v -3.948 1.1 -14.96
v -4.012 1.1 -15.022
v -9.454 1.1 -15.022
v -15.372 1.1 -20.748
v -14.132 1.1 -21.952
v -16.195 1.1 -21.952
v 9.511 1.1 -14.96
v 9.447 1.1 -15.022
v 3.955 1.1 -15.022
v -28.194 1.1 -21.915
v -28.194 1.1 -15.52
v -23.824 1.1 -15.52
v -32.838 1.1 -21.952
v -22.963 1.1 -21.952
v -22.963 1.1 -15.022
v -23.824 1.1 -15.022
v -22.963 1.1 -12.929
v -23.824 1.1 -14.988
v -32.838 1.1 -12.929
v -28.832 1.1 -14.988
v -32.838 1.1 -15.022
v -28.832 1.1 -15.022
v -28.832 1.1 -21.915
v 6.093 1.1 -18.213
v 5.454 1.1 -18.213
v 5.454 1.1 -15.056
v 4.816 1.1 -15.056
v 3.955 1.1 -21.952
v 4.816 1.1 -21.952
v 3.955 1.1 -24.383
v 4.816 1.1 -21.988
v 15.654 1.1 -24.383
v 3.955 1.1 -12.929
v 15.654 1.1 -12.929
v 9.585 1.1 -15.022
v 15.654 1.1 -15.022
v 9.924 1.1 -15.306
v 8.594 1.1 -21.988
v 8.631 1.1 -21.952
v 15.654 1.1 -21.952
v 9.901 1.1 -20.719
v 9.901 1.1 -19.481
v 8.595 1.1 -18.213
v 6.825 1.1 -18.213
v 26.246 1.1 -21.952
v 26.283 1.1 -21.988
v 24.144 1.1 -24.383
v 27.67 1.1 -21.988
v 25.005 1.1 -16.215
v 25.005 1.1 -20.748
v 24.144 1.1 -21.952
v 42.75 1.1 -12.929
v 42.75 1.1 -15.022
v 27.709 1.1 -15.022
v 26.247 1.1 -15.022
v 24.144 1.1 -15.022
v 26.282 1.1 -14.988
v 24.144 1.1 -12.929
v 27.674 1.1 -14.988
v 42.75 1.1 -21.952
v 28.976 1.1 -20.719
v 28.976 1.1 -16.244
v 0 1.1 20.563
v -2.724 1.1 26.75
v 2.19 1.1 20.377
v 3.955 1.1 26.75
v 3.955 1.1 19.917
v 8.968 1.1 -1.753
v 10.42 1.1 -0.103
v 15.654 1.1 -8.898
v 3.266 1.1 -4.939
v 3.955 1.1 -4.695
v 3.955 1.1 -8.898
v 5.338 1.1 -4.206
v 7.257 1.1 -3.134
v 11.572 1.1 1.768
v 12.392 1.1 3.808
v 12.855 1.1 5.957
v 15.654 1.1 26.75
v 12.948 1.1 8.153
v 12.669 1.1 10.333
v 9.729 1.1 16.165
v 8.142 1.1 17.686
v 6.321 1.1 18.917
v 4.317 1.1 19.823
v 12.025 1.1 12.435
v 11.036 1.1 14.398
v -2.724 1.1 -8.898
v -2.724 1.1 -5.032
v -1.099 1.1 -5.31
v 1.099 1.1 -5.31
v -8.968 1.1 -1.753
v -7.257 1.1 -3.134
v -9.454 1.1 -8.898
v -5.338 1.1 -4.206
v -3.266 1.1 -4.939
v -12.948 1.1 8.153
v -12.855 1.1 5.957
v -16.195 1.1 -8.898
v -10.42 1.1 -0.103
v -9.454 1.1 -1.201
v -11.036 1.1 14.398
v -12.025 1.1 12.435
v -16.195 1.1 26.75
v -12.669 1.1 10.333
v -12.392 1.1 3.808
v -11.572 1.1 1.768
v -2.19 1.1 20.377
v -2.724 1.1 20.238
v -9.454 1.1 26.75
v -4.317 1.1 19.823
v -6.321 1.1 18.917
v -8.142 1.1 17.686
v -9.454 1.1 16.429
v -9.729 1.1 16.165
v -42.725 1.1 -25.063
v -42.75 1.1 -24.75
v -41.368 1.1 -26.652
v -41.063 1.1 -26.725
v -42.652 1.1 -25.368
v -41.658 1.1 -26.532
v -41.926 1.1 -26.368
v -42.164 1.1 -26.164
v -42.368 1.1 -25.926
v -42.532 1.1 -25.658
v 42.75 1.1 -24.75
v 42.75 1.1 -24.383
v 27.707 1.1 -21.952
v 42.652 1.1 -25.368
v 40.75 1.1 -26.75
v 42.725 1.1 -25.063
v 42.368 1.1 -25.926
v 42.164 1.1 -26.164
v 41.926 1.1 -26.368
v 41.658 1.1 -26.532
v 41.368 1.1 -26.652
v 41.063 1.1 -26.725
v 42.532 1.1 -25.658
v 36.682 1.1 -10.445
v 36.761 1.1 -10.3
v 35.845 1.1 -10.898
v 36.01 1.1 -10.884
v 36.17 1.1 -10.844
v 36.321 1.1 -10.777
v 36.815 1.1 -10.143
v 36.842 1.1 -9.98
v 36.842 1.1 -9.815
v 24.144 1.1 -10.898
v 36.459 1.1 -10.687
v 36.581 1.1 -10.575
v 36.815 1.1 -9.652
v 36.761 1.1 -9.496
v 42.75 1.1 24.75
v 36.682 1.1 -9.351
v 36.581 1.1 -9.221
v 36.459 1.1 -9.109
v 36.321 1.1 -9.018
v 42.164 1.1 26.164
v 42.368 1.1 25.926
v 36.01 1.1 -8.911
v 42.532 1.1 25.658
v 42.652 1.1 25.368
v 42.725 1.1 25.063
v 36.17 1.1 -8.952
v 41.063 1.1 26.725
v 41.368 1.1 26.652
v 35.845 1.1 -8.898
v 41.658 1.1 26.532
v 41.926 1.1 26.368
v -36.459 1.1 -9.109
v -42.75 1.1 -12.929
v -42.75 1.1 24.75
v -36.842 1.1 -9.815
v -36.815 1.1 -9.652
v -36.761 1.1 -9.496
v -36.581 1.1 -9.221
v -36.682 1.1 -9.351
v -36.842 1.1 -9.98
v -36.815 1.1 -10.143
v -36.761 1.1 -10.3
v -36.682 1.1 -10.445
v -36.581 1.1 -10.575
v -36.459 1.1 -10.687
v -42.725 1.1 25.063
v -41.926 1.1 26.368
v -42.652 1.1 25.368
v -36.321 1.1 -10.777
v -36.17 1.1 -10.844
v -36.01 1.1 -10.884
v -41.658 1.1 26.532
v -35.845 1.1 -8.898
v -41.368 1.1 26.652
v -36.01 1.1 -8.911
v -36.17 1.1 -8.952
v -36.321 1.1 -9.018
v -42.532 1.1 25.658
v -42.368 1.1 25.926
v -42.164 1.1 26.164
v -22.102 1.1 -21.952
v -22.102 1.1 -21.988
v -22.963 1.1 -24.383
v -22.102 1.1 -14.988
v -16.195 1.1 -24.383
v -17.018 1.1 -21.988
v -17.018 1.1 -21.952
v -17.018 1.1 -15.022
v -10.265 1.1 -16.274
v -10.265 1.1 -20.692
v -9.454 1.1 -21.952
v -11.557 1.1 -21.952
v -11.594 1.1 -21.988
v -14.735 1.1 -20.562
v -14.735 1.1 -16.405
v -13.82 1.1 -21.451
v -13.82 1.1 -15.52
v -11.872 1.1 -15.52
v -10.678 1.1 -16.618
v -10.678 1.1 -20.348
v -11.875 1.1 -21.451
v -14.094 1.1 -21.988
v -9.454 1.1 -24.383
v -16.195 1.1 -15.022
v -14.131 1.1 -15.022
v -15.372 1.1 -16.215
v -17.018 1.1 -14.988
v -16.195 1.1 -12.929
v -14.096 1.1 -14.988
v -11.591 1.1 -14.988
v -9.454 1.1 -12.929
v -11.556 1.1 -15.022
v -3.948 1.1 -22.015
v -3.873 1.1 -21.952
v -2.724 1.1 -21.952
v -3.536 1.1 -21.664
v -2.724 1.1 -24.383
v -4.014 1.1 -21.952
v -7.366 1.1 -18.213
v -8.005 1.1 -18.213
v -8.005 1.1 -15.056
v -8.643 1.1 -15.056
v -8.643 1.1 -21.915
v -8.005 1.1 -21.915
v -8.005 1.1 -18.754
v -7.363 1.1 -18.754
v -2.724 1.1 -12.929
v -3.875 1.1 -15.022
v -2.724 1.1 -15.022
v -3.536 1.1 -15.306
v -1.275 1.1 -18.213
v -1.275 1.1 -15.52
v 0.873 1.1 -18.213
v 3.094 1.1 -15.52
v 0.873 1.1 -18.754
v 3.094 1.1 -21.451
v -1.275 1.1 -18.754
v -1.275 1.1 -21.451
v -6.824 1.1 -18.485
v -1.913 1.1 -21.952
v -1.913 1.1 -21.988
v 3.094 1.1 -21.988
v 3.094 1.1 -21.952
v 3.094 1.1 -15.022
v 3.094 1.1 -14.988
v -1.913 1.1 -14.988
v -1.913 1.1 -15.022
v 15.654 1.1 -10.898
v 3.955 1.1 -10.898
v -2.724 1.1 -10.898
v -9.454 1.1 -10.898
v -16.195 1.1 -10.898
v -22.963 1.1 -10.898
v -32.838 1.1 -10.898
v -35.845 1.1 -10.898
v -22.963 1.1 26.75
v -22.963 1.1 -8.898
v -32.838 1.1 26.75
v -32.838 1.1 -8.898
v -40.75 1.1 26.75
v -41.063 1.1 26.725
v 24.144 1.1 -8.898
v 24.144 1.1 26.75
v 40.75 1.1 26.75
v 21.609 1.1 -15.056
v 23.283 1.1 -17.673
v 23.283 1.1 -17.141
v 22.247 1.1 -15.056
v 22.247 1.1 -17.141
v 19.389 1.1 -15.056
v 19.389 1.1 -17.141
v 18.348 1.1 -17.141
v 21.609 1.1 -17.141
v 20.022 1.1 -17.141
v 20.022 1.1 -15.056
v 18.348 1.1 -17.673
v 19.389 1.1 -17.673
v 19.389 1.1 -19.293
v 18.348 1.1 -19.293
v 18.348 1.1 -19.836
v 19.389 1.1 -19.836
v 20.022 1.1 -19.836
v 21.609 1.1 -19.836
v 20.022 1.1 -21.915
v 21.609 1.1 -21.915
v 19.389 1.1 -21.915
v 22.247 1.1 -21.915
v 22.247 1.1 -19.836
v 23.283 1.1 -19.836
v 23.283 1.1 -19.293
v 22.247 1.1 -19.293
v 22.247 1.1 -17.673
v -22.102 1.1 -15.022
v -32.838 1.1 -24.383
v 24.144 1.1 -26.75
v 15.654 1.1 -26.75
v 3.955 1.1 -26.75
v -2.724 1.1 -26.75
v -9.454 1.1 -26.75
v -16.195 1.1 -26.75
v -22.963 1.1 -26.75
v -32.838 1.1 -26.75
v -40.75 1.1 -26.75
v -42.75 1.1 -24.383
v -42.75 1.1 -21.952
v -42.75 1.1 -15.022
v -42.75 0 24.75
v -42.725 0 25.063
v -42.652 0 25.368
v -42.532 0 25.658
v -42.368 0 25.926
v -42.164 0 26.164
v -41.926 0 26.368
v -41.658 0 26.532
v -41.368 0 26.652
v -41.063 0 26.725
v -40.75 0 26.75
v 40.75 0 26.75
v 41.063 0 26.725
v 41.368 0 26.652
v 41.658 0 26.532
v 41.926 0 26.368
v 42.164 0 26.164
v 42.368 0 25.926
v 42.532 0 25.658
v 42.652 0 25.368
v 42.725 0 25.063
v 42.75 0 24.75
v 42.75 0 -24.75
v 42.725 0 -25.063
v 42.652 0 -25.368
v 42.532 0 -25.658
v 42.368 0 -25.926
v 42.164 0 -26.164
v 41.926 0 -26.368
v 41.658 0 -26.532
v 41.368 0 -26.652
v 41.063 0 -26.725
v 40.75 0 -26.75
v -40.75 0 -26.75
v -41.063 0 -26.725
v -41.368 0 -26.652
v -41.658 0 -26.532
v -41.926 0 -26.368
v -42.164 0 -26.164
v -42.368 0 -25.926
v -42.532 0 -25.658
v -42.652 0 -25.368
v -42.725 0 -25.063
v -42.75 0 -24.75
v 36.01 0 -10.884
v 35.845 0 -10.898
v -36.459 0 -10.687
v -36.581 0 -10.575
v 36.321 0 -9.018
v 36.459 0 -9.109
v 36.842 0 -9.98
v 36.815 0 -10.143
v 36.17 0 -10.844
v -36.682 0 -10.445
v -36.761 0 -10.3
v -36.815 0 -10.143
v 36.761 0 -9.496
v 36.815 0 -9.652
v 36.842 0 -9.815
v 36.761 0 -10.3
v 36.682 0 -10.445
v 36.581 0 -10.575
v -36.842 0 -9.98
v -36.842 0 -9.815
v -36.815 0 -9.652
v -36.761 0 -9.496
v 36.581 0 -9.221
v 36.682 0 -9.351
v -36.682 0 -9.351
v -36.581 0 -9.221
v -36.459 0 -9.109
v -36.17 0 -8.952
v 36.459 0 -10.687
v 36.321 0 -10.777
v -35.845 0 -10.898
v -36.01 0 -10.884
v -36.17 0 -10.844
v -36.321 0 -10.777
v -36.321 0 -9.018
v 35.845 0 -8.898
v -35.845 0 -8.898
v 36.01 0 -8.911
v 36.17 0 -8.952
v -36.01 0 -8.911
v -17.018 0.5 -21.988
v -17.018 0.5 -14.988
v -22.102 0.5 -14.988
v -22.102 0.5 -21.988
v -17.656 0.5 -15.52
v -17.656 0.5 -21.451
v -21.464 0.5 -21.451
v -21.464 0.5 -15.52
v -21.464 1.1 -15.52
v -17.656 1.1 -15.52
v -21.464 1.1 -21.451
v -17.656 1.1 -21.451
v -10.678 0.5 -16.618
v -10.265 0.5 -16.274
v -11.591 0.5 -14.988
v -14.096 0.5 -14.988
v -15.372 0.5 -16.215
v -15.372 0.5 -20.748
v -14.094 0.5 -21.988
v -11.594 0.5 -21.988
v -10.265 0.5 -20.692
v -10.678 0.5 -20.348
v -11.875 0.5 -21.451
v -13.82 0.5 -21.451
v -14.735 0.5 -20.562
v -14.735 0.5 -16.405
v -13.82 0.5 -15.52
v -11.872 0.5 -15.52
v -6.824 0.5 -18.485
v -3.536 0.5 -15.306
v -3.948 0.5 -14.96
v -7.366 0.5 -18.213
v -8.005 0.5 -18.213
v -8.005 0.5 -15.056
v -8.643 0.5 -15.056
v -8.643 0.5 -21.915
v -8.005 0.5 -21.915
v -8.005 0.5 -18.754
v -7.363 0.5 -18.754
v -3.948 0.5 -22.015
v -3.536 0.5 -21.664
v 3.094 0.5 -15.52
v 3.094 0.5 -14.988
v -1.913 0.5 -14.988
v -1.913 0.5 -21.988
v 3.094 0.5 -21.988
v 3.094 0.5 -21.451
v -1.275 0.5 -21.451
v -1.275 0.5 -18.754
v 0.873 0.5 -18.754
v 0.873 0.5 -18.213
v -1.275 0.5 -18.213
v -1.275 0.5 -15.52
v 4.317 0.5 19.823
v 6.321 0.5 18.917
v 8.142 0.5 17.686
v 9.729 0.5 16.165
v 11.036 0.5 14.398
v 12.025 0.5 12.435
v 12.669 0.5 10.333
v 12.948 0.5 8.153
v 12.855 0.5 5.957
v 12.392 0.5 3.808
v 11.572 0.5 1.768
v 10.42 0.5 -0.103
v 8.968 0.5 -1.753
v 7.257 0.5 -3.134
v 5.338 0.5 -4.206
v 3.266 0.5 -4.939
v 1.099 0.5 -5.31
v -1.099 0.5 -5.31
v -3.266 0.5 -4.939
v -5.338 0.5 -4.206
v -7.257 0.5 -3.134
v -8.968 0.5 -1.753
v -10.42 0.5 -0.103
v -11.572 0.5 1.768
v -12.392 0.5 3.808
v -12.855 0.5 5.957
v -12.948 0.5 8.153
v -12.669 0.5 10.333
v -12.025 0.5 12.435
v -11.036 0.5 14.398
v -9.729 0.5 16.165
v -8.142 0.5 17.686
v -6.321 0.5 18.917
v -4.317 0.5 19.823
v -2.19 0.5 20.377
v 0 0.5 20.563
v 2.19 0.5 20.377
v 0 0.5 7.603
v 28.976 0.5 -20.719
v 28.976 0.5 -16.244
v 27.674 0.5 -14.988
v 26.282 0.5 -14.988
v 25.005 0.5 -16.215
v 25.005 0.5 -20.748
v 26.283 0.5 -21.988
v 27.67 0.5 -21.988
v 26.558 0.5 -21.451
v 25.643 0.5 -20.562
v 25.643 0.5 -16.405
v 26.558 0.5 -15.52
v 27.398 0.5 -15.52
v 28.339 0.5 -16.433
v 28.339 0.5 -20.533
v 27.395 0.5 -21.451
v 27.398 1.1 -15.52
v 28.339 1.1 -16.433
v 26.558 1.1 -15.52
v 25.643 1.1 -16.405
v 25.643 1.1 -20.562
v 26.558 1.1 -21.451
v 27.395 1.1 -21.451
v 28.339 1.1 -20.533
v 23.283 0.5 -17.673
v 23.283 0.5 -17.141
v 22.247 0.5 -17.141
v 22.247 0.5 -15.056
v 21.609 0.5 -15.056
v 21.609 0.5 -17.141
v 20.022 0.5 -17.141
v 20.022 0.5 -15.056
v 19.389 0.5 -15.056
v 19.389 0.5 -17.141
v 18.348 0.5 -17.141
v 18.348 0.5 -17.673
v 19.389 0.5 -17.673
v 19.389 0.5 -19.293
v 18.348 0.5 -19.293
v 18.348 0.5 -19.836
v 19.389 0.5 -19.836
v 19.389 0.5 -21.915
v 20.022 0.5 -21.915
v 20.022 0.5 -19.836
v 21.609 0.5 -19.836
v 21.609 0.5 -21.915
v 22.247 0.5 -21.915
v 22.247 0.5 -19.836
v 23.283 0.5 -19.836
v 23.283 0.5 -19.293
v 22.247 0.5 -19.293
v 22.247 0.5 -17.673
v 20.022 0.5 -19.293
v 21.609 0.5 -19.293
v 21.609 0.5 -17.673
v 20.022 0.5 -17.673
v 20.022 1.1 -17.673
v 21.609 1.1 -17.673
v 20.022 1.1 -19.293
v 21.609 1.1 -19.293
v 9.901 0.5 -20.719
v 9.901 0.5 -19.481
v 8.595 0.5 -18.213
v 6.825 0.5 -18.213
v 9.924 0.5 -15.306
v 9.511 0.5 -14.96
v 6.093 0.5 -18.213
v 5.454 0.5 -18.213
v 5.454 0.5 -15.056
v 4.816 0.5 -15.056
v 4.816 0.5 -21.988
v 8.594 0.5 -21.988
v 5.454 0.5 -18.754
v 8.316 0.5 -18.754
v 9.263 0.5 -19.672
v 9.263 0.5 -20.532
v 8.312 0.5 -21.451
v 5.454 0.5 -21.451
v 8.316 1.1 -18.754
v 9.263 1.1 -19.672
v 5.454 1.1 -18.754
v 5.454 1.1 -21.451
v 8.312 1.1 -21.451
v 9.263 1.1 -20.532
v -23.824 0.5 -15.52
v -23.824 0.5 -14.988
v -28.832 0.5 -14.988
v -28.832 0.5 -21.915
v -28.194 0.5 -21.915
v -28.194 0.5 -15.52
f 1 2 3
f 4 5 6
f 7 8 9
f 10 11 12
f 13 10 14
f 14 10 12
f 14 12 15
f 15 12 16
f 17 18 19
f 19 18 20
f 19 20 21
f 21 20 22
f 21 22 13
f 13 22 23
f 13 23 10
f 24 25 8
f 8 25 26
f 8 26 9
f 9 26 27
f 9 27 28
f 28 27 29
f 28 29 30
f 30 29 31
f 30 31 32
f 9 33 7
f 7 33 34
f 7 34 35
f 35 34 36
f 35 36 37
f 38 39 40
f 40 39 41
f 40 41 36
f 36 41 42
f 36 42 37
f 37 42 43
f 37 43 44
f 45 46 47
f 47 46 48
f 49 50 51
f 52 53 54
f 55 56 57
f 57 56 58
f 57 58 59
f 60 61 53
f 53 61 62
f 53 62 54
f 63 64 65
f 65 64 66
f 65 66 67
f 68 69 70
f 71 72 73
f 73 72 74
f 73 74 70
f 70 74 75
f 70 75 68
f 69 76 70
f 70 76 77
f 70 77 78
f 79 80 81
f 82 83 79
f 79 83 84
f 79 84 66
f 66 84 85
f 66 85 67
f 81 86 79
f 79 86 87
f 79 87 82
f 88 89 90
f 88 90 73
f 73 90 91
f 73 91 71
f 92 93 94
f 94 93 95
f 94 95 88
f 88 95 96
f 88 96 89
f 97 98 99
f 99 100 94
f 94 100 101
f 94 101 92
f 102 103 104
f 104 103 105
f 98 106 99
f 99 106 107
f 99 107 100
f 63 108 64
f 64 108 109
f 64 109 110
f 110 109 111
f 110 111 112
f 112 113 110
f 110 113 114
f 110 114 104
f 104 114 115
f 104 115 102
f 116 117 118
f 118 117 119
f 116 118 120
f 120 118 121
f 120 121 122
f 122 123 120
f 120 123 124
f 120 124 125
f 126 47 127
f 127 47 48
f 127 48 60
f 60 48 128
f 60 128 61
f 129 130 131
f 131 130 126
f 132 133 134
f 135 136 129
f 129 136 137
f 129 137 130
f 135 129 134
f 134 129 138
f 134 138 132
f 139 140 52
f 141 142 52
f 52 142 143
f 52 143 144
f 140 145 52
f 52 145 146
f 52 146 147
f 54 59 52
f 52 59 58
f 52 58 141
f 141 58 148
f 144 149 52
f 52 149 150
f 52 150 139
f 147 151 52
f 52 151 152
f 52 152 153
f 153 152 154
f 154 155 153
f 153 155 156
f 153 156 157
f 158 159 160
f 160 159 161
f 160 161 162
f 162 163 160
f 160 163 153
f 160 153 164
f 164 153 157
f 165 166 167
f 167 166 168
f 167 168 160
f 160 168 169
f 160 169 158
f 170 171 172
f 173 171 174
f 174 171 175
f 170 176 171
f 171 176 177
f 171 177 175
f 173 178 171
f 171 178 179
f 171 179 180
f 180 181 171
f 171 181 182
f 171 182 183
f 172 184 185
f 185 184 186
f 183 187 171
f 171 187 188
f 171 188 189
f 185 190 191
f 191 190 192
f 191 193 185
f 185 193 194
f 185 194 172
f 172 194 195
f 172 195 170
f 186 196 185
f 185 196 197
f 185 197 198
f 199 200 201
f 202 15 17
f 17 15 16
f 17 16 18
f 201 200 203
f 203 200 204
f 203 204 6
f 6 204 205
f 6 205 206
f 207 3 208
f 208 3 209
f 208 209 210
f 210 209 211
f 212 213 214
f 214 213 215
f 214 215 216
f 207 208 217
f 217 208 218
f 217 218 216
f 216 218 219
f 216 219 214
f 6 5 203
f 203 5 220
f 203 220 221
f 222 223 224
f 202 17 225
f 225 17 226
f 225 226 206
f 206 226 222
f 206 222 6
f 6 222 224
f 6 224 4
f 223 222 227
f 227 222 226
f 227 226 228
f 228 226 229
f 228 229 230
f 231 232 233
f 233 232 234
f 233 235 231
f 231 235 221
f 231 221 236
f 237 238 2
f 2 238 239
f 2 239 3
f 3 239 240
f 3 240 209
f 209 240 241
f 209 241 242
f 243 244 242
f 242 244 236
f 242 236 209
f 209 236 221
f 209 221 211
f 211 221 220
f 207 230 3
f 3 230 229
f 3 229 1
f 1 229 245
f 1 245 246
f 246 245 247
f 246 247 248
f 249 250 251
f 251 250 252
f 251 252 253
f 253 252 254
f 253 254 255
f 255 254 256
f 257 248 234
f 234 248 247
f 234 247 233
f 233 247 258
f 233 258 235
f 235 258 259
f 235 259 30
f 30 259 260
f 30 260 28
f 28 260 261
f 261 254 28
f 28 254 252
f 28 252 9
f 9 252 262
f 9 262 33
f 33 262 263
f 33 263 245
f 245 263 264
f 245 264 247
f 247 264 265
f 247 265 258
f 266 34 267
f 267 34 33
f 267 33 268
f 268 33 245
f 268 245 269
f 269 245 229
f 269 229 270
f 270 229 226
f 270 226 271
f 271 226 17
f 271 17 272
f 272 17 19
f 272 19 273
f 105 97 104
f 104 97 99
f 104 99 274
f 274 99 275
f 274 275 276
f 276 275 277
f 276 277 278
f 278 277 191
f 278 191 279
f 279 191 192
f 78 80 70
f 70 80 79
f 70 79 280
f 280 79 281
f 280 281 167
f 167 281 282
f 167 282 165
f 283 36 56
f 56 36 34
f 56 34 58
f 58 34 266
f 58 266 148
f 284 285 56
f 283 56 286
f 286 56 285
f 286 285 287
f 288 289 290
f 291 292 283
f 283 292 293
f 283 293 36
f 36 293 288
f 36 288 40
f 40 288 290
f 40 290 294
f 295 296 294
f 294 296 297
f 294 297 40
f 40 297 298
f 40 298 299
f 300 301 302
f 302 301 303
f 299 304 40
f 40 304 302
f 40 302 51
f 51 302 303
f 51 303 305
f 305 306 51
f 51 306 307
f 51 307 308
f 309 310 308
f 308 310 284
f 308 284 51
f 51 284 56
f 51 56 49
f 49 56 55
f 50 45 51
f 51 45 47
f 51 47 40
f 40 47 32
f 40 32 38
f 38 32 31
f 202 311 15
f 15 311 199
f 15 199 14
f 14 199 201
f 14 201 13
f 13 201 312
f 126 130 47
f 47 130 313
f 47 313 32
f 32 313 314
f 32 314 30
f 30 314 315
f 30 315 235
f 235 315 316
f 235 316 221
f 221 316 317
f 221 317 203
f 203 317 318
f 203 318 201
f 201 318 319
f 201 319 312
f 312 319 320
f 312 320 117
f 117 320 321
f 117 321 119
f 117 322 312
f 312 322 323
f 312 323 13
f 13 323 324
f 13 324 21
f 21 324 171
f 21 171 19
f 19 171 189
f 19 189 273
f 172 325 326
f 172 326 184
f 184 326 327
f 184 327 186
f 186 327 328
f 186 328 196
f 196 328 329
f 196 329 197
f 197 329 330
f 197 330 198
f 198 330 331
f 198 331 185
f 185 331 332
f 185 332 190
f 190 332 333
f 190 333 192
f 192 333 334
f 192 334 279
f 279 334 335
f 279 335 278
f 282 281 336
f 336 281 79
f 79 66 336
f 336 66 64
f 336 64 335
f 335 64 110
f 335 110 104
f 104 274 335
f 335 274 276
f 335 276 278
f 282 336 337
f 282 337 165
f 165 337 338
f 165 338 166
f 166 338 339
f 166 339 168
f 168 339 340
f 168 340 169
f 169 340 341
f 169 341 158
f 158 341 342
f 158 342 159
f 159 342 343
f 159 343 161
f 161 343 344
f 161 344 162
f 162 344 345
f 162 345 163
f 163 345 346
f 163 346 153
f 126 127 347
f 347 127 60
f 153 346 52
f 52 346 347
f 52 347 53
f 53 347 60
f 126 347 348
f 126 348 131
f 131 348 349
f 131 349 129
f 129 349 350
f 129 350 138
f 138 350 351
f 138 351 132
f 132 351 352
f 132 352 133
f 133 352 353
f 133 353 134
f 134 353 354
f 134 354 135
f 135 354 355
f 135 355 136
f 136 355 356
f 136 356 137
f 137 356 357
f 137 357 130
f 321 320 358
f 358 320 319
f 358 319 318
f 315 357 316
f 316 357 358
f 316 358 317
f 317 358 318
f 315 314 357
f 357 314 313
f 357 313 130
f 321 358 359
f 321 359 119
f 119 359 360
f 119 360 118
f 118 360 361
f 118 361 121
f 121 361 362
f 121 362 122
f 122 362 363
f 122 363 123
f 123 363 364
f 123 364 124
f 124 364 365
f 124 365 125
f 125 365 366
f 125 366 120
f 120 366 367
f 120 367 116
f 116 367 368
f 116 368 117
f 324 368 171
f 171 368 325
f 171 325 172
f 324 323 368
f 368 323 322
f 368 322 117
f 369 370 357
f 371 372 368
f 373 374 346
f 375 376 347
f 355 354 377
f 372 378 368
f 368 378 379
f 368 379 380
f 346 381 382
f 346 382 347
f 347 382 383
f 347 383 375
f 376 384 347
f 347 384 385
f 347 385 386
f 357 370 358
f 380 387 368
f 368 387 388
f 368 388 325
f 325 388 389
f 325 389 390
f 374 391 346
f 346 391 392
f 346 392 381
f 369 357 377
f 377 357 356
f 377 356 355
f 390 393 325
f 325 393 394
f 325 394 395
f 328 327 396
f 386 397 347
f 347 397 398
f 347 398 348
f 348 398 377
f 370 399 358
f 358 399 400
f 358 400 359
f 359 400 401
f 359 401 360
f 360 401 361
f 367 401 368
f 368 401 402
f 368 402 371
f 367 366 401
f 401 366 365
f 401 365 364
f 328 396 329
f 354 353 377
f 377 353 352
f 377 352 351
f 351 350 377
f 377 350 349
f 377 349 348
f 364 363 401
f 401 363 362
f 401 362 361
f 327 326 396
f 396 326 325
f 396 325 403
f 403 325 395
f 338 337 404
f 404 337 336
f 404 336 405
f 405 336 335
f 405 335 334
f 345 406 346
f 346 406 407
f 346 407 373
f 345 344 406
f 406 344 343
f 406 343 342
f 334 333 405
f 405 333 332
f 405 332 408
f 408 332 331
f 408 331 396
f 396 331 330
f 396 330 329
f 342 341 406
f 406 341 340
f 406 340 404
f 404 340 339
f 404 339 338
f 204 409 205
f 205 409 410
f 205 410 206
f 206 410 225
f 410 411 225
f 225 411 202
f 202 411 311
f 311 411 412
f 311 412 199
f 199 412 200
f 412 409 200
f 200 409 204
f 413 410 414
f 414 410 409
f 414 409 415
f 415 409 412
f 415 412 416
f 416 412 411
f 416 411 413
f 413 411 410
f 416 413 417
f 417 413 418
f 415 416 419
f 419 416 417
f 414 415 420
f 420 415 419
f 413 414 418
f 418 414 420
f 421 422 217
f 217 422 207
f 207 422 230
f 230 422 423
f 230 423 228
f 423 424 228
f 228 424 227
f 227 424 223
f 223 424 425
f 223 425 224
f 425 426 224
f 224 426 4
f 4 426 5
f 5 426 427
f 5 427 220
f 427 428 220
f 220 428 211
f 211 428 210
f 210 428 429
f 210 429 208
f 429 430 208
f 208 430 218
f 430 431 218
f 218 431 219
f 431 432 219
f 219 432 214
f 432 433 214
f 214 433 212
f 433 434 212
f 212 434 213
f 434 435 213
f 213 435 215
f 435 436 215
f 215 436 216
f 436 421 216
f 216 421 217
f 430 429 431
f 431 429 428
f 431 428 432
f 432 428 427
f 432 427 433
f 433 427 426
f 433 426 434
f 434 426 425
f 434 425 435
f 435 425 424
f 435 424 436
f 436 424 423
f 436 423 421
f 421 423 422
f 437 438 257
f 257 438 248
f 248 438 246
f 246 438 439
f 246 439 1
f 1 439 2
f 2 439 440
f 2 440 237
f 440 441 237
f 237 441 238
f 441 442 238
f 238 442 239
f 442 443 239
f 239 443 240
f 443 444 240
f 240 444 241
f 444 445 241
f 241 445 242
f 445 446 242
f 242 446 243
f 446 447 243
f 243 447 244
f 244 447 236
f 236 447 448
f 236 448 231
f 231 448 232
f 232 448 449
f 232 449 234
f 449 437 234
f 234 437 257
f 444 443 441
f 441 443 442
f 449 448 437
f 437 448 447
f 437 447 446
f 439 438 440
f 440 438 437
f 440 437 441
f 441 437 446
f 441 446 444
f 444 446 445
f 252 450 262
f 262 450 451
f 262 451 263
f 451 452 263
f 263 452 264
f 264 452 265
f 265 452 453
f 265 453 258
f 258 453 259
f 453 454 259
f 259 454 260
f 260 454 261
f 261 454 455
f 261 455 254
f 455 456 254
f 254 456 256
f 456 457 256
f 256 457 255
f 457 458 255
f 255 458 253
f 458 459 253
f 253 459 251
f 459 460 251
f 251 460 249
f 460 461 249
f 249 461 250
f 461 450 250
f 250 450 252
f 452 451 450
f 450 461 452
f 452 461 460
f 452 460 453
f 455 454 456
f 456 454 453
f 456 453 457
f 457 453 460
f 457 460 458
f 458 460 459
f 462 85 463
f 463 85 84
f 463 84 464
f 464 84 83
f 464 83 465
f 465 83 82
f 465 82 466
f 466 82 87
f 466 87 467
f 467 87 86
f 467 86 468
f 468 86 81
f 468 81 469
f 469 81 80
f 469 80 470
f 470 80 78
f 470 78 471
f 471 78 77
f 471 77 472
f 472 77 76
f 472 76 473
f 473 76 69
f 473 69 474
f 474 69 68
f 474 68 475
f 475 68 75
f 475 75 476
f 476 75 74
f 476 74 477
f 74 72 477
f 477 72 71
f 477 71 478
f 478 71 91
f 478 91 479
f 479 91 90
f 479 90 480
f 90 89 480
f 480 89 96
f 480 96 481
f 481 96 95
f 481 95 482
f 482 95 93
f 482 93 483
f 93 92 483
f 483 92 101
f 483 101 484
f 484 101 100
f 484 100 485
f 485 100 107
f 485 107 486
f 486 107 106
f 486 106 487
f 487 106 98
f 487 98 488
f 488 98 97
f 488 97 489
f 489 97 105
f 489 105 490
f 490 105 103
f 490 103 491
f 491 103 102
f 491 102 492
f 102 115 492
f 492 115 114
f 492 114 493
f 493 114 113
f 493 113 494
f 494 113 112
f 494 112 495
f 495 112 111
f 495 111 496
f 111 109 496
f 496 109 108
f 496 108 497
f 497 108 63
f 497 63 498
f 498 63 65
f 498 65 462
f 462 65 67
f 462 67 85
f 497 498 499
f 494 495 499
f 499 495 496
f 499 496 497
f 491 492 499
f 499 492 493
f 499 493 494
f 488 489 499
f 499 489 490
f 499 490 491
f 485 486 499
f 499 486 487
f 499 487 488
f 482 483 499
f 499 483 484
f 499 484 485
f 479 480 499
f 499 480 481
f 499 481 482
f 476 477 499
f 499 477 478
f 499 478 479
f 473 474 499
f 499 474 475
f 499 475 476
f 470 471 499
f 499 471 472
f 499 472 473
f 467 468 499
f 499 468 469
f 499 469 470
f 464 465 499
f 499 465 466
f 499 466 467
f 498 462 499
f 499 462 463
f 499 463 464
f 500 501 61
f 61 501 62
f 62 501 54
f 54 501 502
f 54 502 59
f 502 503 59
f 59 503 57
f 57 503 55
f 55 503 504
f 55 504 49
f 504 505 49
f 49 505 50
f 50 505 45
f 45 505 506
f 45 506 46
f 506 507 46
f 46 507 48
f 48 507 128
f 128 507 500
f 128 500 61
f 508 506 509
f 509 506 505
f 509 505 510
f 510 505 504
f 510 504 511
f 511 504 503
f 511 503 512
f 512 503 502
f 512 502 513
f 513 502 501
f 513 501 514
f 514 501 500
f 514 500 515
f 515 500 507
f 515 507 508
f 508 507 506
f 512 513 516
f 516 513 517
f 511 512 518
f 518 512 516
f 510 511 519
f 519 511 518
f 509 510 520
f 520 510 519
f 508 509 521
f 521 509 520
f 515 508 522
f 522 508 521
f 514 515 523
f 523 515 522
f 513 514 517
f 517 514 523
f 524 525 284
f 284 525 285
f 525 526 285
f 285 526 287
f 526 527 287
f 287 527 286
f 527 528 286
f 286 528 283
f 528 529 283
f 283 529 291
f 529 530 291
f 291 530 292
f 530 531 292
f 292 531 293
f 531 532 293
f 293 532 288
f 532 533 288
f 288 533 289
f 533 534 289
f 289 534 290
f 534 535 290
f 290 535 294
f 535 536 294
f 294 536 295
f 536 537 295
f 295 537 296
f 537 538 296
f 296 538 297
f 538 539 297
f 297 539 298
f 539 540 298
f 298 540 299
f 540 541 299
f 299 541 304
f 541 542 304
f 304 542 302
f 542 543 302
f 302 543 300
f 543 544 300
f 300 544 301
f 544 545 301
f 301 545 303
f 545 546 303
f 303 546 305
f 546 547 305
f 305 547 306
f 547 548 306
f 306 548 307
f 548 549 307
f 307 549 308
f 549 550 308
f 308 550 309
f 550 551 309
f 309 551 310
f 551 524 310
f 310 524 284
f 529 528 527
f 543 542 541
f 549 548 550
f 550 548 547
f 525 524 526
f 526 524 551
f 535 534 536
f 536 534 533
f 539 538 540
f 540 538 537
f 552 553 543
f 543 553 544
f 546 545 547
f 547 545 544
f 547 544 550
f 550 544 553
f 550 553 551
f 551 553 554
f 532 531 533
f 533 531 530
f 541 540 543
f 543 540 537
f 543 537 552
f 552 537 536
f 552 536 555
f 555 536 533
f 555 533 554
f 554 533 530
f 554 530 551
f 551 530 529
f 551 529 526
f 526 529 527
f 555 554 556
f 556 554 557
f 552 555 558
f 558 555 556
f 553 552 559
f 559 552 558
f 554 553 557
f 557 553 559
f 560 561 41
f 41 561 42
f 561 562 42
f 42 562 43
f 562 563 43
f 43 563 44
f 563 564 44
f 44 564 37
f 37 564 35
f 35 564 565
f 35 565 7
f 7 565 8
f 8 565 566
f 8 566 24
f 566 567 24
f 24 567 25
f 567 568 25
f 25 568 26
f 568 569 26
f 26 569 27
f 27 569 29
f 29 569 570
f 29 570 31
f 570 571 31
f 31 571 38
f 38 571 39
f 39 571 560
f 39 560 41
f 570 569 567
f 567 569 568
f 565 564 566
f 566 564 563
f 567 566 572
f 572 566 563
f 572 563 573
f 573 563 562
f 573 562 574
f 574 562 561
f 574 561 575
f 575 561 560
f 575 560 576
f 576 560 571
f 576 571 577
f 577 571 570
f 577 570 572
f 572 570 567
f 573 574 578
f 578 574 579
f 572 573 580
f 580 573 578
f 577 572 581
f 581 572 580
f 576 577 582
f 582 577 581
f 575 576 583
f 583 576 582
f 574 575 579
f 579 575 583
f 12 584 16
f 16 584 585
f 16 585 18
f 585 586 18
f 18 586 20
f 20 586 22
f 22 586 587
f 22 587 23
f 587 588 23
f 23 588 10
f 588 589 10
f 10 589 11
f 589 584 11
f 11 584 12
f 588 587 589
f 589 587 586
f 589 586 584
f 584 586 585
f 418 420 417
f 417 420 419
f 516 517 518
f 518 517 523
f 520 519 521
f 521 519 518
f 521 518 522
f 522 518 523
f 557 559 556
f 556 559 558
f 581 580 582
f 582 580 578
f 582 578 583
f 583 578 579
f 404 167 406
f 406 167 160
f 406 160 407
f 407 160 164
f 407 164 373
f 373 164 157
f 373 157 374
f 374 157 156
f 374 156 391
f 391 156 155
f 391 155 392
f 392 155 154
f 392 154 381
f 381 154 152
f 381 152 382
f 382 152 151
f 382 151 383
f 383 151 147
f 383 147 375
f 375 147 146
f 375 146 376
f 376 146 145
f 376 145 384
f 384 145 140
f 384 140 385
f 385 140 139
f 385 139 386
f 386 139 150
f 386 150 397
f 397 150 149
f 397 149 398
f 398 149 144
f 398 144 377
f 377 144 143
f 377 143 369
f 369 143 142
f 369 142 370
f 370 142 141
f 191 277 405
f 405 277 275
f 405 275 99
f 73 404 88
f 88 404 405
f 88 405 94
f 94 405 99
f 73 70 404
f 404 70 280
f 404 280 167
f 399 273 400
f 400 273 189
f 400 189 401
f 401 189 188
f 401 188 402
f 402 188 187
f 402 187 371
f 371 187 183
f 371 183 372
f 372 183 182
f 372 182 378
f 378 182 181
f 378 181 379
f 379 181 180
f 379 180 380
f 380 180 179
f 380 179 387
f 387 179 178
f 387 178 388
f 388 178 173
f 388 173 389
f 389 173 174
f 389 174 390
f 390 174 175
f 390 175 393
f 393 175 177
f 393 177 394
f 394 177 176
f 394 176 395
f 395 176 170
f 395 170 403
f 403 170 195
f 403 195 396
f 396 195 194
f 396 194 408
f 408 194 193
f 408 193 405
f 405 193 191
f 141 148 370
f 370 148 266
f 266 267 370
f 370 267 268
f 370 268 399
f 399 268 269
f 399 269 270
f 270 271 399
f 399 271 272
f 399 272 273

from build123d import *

# Parameters (mm, degrees)
EXTRUDE_1_DEPTH     = 1.1
SKETCH_4_R          = 12.96
SKETCH_4_W          = 5.084081154
SKETCH_4_H          = 7
SKETCH_4_W_2        = 3.808622708
SKETCH_4_H_2        = 5.930745221
SKETCH_4_W_3        = 1.586812329
SKETCH_4_H_3        = 1.62095201
CUT_EXTRUDE_8_DEPTH = 0.6
CUT_EXTRUDE_9_DEPTH = 51.441401646


with BuildPart() as part:
    # Эскиз1 → Бобышка-Вытянуть1 (new body)
    with BuildSketch(Plane(origin=(0, 0, 0), x_dir=(1, 0, 0), z_dir=(0, 1, 0))):
        with BuildLine():
            Line((-40.75, 26.75), (40.75, 26.75))
            ThreePointArc((40.75, 26.75), (42.164213562, 26.164213562), (42.75, 24.75))
            Line((42.75, 24.75), (42.75, -24.75))
            ThreePointArc((42.75, -24.75), (42.164213562, -26.164213562), (40.75, -26.75))
            Line((40.75, -26.75), (-40.75, -26.75))
            ThreePointArc((-40.75, -26.75), (-42.164213562, -26.164213562), (-42.75, -24.75))
            Line((-42.75, -24.75), (-42.75, 24.75))
            ThreePointArc((-42.75, 24.75), (-42.164213562, 26.164213562), (-40.75, 26.75))
        make_face()
    extrude(amount=EXTRUDE_1_DEPTH)

    # Эскиз4 → Вырез-Вытянуть8 (cut)
    # profile 1 of 9: a face of its own
    with BuildSketch(Plane(origin=(0, 1.1, 0), x_dir=(1, 0, 0), z_dir=(0, 1, 0))):
        with Locations(Location((0, -7.603080064, 0), (0, 0, 270))):
            Circle(SKETCH_4_R)
    # profile 2 of 9: a face of its own
    with BuildSketch(Plane(origin=(0, 1.1, 0), x_dir=(1, 0, 0), z_dir=(0, 1, 0))):
        Polygon((-23.824034335, 14.987763796), (-28.831642606, 14.987763796), (-28.831642606, 21.915387674), (-28.193913383, 21.915387674), (-28.193913383, 15.520342805), (-23.824034335, 15.520342805), align=None)
    # profile 3 of 9: a face of its own
    with BuildSketch(Plane(origin=(0, 1.1, 0), x_dir=(1, 0, 0), z_dir=(0, 1, 0))):
        with Locations((-19.559988295, 18.487763796)):
            Rectangle(SKETCH_4_W, SKETCH_4_H)
        with Locations((-19.559988295, 18.485715415)):
            Rectangle(SKETCH_4_W_2, SKETCH_4_H_2, mode=Mode.SUBTRACT)
    # profile 4 of 9: a face of its own
    with BuildSketch(Plane(origin=(0, 1.1, 0), x_dir=(1, 0, 0), z_dir=(0, 1, 0))):
        Polygon((-10.265119001, 16.274146941), (-11.591104175, 14.987763796), (-14.095591104, 14.987763796), (-15.372415139, 16.215426691), (-15.372415139, 20.747810616), (-14.094225517, 21.987763796), (-11.593835349, 21.987763796), (-10.265119001, 20.691821541), (-10.677526336, 20.347693566), (-11.875146313, 21.451088026), (-13.819742489, 21.451088026), (-14.734685915, 20.562090757), (-14.734685915, 16.405243312), (-13.819742489, 15.520342805), (-11.872415139, 15.520342805), (-10.677526336, 16.618274916), align=None)
    # profile 5 of 9: a face of its own
    with BuildSketch(Plane(origin=(0, 1.1, 0), x_dir=(1, 0, 0), z_dir=(0, 1, 0))):
        Polygon((-3.535505267, 15.305945614), (-3.947912602, 14.960452052), (-7.36597737, 18.213280768), (-8.005072181, 18.213280768), (-8.005072181, 15.056043156), (-8.642801405, 15.056043156), (-8.642801405, 21.915387674), (-8.005072181, 21.915387674), (-8.005072181, 18.754053301), (-7.363246196, 18.754053301), (-3.947912602, 22.01507554), (-3.535505267, 21.664119629), (-6.823839251, 18.485032622), align=None)
    # profile 6 of 9: a face of its own
    with BuildSketch(Plane(origin=(0, 1.1, 0), x_dir=(1, 0, 0), z_dir=(0, 1, 0))):
        Polygon((3.094420601, 14.987763796), (-1.913187671, 14.987763796), (-1.913187671, 21.987763796), (3.094420601, 21.987763796), (3.094420601, 21.451088026), (-1.275458447, 21.451088026), (-1.275458447, 18.754053301), (0.872610222, 18.754053301), (0.872610222, 18.213280768), (-1.275458447, 18.213280768), (-1.275458447, 15.520342805), (3.094420601, 15.520342805), align=None)
    # profile 7 of 9: a face of its own
    with BuildSketch(Plane(origin=(0, 1.1, 0), x_dir=(1, 0, 0), z_dir=(0, 1, 0))):
        Polygon((9.900507218, 19.480545692), (8.595005853, 18.213280768), (6.825204838, 18.213280768), (9.923722201, 15.305945614), (9.511314865, 14.960452052), (6.093250098, 18.213280768), (5.454155287, 18.213280768), (5.454155287, 15.056043156), (4.816426063, 15.056043156), (4.816426063, 21.987763796), (8.593640265, 21.987763796), (9.900507218, 20.719133285), align=None)
        Polygon((9.262777995, 19.671727901), (9.262777995, 20.532047838), (8.312329302, 21.451088026), (5.454155287, 21.451088026), (5.454155287, 18.754053301), (8.316426063, 18.754053301), align=None, mode=Mode.SUBTRACT)
    # profile 8 of 9: a face of its own
    with BuildSketch(Plane(origin=(0, 1.1, 0), x_dir=(1, 0, 0), z_dir=(0, 1, 0))):
        Polygon((23.283261803, 17.141294815), (22.246781116, 17.141294815), (22.246781116, 15.056043156), (21.609051892, 15.056043156), (21.609051892, 17.141294815), (20.022239563, 17.141294815), (20.022239563, 15.056043156), (19.388607101, 15.056043156), (19.388607101, 17.141294815), (18.348029653, 17.141294815), (18.348029653, 17.672508236), (19.388607101, 17.672508236), (19.388607101, 19.293460246), (18.348029653, 19.293460246), (18.348029653, 19.835598365), (19.388607101, 19.835598365), (19.388607101, 21.915387674), (20.022239563, 21.915387674), (20.022239563, 19.835598365), (21.609051892, 19.835598365), (21.609051892, 21.915387674), (22.246781116, 21.915387674), (22.246781116, 19.835598365), (23.283261803, 19.835598365), (23.283261803, 19.293460246), (22.246781116, 19.293460246), (22.246781116, 17.672508236), (23.283261803, 17.672508236), align=None)
        with Locations((20.815645728, 18.482984241)):
            Rectangle(SKETCH_4_W_3, SKETCH_4_H_3, mode=Mode.SUBTRACT)
    # profile 9 of 9: a face of its own
    with BuildSketch(Plane(origin=(0, 1.1, 0), x_dir=(1, 0, 0), z_dir=(0, 1, 0))):
        Polygon((28.97639485, 16.244104022), (27.673624659, 14.987763796), (26.282091299, 14.987763796), (25.005267265, 16.215426691), (25.005267265, 20.747810616), (26.283456886, 21.987763796), (27.669527897, 21.987763796), (28.97639485, 20.719133285), align=None)
        Polygon((28.338665626, 16.432555056), (28.338665626, 20.533413426), (27.395044869, 21.451088026), (26.557939914, 21.451088026), (25.642996488, 20.562090757), (25.642996488, 16.405243312), (26.557939914, 15.520342805), (27.397776044, 15.520342805), align=None, mode=Mode.SUBTRACT)
    extrude(amount=-CUT_EXTRUDE_8_DEPTH, mode=Mode.SUBTRACT)

    # Эскиз5 → Вырез-Вытянуть9 (cut, through all)
    with BuildSketch(Plane(origin=(0, 1.1, 0), x_dir=(1, 0, 0), z_dir=(0, 1, 0))):
        with BuildLine():
            Line((-35.845264221, 10.897827852), (35.845264221, 10.897827852))
            ThreePointArc((35.845264221, 10.897827852), (36.845264221, 9.897827852), (35.845264221, 8.897827852))
            Line((35.845264221, 8.897827852), (-35.845264221, 8.897827852))
            ThreePointArc((-35.845264221, 8.897827852), (-36.845264221, 9.897827852), (-35.845264221, 10.897827852))
        make_face()
    extrude(amount=-CUT_EXTRUDE_9_DEPTH, mode=Mode.SUBTRACT)


solid = part.part
